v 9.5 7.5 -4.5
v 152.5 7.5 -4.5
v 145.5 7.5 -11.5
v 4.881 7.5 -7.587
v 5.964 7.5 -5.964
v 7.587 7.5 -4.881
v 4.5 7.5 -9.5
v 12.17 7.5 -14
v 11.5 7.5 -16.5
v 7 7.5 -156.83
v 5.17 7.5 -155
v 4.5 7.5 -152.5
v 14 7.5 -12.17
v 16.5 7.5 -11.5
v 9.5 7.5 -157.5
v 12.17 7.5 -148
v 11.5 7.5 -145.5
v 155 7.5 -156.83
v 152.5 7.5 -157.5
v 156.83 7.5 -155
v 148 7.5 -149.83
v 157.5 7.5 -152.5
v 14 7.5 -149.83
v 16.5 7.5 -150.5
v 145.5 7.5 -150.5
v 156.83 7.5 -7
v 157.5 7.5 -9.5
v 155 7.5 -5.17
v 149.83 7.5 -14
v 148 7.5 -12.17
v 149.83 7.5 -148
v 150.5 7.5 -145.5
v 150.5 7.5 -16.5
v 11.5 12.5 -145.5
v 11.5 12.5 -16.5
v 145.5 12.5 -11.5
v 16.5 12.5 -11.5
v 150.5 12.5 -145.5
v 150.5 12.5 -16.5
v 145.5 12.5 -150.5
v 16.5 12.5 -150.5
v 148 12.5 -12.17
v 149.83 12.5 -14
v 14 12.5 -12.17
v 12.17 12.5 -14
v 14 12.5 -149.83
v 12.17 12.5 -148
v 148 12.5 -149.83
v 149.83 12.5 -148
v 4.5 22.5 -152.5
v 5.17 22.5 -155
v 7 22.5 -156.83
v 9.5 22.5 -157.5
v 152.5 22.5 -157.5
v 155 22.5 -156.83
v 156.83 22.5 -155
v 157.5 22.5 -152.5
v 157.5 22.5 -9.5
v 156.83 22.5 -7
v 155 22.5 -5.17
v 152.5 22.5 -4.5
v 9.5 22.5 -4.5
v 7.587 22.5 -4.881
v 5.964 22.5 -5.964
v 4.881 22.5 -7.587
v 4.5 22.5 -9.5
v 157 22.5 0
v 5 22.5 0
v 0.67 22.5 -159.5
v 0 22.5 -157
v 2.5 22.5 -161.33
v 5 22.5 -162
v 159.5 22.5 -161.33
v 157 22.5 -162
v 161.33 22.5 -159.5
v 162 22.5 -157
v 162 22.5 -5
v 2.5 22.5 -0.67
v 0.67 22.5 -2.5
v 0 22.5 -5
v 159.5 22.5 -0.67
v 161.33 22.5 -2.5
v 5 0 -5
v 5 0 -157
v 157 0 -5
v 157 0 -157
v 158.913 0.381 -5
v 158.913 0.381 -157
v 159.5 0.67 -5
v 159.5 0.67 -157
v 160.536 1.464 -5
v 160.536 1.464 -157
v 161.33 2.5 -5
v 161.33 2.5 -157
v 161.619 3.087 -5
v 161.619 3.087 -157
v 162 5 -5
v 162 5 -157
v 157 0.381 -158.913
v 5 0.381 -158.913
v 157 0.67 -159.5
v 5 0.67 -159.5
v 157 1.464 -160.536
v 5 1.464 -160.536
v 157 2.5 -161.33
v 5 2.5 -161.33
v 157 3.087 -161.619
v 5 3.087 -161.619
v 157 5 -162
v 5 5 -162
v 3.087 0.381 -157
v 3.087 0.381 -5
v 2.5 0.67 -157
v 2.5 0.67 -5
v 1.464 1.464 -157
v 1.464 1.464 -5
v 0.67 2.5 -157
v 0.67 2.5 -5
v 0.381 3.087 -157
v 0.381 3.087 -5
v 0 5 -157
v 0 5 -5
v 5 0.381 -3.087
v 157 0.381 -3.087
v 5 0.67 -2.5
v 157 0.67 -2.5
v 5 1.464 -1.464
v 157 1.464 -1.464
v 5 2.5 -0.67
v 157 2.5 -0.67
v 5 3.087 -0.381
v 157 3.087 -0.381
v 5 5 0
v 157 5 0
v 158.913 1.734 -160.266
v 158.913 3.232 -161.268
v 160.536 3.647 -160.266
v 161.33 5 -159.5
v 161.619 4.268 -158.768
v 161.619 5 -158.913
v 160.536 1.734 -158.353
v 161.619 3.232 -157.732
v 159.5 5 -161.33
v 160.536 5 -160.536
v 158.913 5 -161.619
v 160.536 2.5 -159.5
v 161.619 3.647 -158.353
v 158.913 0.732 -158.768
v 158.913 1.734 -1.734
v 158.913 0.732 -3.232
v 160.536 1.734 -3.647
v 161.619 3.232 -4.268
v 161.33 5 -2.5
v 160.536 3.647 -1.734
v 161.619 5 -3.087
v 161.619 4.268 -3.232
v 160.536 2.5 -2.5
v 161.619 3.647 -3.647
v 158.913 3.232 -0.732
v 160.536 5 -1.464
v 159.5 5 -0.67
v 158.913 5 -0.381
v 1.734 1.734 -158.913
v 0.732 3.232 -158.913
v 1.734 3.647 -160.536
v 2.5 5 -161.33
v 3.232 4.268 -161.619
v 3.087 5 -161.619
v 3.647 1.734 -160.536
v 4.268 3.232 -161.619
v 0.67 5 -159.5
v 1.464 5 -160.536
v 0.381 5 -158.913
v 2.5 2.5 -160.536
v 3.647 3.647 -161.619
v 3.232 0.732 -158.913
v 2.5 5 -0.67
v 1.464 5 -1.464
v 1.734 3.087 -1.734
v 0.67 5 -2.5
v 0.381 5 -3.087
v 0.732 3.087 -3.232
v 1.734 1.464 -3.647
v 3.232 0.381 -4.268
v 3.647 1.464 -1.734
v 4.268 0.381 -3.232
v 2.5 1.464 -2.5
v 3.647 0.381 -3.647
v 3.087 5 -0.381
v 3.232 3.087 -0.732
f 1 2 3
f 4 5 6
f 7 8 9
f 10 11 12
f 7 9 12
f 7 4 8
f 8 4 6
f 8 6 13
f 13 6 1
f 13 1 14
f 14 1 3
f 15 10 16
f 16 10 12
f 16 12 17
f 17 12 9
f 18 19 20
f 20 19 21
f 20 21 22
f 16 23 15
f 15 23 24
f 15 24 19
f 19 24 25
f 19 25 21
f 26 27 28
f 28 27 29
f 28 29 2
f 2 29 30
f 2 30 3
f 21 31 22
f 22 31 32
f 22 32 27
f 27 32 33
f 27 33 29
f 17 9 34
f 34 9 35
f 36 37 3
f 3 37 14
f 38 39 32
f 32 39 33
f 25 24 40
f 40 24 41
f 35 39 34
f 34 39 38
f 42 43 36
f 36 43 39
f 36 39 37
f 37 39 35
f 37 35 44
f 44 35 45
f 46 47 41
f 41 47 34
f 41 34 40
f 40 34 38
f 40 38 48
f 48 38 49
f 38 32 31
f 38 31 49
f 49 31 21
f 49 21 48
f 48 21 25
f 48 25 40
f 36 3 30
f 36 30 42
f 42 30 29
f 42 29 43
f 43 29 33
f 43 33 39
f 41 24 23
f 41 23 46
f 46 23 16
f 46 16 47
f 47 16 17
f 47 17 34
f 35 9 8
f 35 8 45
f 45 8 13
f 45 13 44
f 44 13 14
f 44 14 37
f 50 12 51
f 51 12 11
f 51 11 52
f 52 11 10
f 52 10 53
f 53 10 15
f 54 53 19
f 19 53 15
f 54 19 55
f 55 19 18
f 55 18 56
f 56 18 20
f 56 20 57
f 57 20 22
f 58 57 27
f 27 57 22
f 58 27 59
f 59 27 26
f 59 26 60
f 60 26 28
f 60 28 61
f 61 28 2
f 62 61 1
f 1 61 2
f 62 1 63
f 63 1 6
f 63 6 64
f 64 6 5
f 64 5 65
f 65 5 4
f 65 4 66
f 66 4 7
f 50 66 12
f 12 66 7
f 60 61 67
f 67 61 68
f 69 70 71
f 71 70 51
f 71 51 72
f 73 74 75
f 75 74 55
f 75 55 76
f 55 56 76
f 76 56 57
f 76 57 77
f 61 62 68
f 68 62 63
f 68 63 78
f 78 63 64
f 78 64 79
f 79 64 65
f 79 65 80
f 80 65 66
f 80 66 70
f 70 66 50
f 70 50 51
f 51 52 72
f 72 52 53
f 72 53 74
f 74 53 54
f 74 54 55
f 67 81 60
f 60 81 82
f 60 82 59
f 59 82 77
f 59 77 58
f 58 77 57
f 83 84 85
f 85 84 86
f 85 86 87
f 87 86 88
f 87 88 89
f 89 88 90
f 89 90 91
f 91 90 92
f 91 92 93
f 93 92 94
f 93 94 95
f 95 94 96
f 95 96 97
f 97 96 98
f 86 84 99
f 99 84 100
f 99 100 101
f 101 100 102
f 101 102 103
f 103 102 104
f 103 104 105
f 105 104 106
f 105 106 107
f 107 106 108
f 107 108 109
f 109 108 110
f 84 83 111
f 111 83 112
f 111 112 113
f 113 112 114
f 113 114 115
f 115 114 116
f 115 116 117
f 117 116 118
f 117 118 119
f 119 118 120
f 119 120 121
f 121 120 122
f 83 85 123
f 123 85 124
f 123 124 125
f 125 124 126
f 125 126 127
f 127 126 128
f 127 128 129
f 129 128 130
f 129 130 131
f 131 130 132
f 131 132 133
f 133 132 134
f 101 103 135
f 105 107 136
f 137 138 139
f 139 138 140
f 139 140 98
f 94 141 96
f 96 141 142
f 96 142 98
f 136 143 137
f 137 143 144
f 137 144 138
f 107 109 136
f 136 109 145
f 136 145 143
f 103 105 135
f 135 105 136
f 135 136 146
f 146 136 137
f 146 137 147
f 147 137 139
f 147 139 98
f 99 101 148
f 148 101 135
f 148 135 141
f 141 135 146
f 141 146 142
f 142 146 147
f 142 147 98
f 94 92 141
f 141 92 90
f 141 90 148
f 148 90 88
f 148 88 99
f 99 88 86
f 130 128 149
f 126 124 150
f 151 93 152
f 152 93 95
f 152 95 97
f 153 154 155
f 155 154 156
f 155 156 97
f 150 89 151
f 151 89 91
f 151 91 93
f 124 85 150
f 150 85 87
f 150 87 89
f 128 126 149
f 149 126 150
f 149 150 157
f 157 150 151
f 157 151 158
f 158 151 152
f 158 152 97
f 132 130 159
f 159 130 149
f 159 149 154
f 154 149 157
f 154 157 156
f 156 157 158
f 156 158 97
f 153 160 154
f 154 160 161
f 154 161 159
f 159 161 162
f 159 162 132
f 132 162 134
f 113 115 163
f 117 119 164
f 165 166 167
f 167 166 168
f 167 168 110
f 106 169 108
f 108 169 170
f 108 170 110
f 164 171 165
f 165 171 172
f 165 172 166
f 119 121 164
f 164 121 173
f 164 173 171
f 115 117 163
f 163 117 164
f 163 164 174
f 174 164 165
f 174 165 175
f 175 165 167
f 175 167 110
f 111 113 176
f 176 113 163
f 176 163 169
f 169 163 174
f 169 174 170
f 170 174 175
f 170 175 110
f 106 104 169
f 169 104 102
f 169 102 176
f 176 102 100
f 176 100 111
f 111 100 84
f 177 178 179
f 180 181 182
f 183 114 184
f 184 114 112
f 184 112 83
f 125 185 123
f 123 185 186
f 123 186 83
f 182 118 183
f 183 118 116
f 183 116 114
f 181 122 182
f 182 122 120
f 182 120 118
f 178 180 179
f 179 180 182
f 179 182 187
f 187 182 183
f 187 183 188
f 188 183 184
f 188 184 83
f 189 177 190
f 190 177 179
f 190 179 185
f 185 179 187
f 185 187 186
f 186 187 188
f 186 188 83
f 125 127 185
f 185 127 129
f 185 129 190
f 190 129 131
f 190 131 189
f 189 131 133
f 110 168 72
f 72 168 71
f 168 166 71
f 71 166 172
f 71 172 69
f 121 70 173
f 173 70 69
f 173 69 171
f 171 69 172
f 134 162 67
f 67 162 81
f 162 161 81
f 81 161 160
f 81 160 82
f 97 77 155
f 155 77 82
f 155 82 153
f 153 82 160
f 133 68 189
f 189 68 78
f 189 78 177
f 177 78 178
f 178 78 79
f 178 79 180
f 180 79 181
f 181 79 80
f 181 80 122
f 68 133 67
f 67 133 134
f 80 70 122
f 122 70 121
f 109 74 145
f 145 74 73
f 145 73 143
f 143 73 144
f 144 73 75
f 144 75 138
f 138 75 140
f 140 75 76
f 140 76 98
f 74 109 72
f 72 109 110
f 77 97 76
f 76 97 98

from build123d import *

# Parameters (mm, degrees)
SKETCH1_W           = 162
SKETCH1_H           = 162
SKETCH1_W_2         = 140
SKETCH1_H_2         = 140
BOSS_EXTRUDE1_DEPTH = 7.5
SKETCH2_W           = 139
SKETCH2_H           = 139
BOSS_EXTRUDE2_DEPTH = 5
FILLET1_R           = 5
BOSS_EXTRUDE3_START = 15
BOSS_EXTRUDE3_DEPTH = 15


with BuildPart() as part:
    # Sketch1 → Boss-Extrude1 (new body)
    # profile 1 of 2: a face of its own
    with BuildSketch(Plane(origin=(0, 0, 0), x_dir=(1, 0, 0), z_dir=(0, 1, 0))):
        with Locations((81, 81)):
            Rectangle(SKETCH1_W, SKETCH1_H)
        with Locations((81, 81)):
            Rectangle(SKETCH1_W_2, SKETCH1_H_2, mode=Mode.SUBTRACT)
    # profile 2 of 2: a face of its own
    with BuildSketch(Plane(origin=(0, 0, 0), x_dir=(1, 0, 0), z_dir=(0, 1, 0))):
        with Locations((81, 81)):
            Rectangle(SKETCH1_W_2, SKETCH1_H_2)
    extrude(amount=BOSS_EXTRUDE1_DEPTH)

    # Sketch2 → Boss-Extrude2 (add)
    with BuildSketch(Plane(origin=(0, 7.5, 0), x_dir=(1, 0, 0), z_dir=(0, 1, 0))):
        with Locations((81, 81)):
            Rectangle(SKETCH2_W, SKETCH2_H)
    extrude(amount=BOSS_EXTRUDE2_DEPTH)

    # Fillet1
    fillet1_edges = [part.edges().sort_by_distance(p)[0] for p in [
        (11.5, 10, -150.5),
        (11.5, 10, -11.5),
        (150.5, 10, -11.5),
        (150.5, 10, -150.5),
        (0, 0, -81),
        (81, 0, -162),
        (162, 0, -81),
        (81, 0, 0),
        (0, 3.75, 0),
        (0, 3.75, -162),
        (162, 3.75, -162),
        (162, 3.75, 0),
    ]]
    fillet(fillet1_edges, radius=FILLET1_R)

    # Sketch3 → Boss-Extrude3 (add)
    with BuildSketch(Plane(origin=(0, 7.5, 0), x_dir=(1, 0, 0), z_dir=(0, 1, 0)).offset(BOSS_EXTRUDE3_START)):
        with BuildLine():
            ThreePointArc((5, 162), (1.464466094, 160.535533906), (0, 157))
            Line((0, 157), (0, 5))
            ThreePointArc((0, 5), (1.464466094, 1.464466094), (5, 0))
            Line((5, 0), (157, 0))
            ThreePointArc((157, 0), (160.535533906, 1.464466094), (162, 5))
            Line((162, 5), (162, 157))
            ThreePointArc((162, 157), (160.535533906, 160.535533906), (157, 162))
            Line((157, 162), (5, 162))
        make_face()
        with BuildLine():
            ThreePointArc((9.5, 157.5), (5.964466094, 156.035533906), (4.5, 152.5))
            Line((4.5, 152.5), (4.5, 9.5))
            ThreePointArc((4.5, 9.5), (5.964466094, 5.964466094), (9.5, 4.5))
            Line((9.5, 4.5), (152.5, 4.5))
            ThreePointArc((152.5, 4.5), (156.035533906, 5.964466094), (157.5, 9.5))
            Line((157.5, 9.5), (157.5, 152.5))
            ThreePointArc((157.5, 152.5), (156.035533906, 156.035533906), (152.5, 157.5))
            Line((152.5, 157.5), (9.5, 157.5))
        make_face(mode=Mode.SUBTRACT)
    extrude(amount=-BOSS_EXTRUDE3_DEPTH)


solid = part.part
